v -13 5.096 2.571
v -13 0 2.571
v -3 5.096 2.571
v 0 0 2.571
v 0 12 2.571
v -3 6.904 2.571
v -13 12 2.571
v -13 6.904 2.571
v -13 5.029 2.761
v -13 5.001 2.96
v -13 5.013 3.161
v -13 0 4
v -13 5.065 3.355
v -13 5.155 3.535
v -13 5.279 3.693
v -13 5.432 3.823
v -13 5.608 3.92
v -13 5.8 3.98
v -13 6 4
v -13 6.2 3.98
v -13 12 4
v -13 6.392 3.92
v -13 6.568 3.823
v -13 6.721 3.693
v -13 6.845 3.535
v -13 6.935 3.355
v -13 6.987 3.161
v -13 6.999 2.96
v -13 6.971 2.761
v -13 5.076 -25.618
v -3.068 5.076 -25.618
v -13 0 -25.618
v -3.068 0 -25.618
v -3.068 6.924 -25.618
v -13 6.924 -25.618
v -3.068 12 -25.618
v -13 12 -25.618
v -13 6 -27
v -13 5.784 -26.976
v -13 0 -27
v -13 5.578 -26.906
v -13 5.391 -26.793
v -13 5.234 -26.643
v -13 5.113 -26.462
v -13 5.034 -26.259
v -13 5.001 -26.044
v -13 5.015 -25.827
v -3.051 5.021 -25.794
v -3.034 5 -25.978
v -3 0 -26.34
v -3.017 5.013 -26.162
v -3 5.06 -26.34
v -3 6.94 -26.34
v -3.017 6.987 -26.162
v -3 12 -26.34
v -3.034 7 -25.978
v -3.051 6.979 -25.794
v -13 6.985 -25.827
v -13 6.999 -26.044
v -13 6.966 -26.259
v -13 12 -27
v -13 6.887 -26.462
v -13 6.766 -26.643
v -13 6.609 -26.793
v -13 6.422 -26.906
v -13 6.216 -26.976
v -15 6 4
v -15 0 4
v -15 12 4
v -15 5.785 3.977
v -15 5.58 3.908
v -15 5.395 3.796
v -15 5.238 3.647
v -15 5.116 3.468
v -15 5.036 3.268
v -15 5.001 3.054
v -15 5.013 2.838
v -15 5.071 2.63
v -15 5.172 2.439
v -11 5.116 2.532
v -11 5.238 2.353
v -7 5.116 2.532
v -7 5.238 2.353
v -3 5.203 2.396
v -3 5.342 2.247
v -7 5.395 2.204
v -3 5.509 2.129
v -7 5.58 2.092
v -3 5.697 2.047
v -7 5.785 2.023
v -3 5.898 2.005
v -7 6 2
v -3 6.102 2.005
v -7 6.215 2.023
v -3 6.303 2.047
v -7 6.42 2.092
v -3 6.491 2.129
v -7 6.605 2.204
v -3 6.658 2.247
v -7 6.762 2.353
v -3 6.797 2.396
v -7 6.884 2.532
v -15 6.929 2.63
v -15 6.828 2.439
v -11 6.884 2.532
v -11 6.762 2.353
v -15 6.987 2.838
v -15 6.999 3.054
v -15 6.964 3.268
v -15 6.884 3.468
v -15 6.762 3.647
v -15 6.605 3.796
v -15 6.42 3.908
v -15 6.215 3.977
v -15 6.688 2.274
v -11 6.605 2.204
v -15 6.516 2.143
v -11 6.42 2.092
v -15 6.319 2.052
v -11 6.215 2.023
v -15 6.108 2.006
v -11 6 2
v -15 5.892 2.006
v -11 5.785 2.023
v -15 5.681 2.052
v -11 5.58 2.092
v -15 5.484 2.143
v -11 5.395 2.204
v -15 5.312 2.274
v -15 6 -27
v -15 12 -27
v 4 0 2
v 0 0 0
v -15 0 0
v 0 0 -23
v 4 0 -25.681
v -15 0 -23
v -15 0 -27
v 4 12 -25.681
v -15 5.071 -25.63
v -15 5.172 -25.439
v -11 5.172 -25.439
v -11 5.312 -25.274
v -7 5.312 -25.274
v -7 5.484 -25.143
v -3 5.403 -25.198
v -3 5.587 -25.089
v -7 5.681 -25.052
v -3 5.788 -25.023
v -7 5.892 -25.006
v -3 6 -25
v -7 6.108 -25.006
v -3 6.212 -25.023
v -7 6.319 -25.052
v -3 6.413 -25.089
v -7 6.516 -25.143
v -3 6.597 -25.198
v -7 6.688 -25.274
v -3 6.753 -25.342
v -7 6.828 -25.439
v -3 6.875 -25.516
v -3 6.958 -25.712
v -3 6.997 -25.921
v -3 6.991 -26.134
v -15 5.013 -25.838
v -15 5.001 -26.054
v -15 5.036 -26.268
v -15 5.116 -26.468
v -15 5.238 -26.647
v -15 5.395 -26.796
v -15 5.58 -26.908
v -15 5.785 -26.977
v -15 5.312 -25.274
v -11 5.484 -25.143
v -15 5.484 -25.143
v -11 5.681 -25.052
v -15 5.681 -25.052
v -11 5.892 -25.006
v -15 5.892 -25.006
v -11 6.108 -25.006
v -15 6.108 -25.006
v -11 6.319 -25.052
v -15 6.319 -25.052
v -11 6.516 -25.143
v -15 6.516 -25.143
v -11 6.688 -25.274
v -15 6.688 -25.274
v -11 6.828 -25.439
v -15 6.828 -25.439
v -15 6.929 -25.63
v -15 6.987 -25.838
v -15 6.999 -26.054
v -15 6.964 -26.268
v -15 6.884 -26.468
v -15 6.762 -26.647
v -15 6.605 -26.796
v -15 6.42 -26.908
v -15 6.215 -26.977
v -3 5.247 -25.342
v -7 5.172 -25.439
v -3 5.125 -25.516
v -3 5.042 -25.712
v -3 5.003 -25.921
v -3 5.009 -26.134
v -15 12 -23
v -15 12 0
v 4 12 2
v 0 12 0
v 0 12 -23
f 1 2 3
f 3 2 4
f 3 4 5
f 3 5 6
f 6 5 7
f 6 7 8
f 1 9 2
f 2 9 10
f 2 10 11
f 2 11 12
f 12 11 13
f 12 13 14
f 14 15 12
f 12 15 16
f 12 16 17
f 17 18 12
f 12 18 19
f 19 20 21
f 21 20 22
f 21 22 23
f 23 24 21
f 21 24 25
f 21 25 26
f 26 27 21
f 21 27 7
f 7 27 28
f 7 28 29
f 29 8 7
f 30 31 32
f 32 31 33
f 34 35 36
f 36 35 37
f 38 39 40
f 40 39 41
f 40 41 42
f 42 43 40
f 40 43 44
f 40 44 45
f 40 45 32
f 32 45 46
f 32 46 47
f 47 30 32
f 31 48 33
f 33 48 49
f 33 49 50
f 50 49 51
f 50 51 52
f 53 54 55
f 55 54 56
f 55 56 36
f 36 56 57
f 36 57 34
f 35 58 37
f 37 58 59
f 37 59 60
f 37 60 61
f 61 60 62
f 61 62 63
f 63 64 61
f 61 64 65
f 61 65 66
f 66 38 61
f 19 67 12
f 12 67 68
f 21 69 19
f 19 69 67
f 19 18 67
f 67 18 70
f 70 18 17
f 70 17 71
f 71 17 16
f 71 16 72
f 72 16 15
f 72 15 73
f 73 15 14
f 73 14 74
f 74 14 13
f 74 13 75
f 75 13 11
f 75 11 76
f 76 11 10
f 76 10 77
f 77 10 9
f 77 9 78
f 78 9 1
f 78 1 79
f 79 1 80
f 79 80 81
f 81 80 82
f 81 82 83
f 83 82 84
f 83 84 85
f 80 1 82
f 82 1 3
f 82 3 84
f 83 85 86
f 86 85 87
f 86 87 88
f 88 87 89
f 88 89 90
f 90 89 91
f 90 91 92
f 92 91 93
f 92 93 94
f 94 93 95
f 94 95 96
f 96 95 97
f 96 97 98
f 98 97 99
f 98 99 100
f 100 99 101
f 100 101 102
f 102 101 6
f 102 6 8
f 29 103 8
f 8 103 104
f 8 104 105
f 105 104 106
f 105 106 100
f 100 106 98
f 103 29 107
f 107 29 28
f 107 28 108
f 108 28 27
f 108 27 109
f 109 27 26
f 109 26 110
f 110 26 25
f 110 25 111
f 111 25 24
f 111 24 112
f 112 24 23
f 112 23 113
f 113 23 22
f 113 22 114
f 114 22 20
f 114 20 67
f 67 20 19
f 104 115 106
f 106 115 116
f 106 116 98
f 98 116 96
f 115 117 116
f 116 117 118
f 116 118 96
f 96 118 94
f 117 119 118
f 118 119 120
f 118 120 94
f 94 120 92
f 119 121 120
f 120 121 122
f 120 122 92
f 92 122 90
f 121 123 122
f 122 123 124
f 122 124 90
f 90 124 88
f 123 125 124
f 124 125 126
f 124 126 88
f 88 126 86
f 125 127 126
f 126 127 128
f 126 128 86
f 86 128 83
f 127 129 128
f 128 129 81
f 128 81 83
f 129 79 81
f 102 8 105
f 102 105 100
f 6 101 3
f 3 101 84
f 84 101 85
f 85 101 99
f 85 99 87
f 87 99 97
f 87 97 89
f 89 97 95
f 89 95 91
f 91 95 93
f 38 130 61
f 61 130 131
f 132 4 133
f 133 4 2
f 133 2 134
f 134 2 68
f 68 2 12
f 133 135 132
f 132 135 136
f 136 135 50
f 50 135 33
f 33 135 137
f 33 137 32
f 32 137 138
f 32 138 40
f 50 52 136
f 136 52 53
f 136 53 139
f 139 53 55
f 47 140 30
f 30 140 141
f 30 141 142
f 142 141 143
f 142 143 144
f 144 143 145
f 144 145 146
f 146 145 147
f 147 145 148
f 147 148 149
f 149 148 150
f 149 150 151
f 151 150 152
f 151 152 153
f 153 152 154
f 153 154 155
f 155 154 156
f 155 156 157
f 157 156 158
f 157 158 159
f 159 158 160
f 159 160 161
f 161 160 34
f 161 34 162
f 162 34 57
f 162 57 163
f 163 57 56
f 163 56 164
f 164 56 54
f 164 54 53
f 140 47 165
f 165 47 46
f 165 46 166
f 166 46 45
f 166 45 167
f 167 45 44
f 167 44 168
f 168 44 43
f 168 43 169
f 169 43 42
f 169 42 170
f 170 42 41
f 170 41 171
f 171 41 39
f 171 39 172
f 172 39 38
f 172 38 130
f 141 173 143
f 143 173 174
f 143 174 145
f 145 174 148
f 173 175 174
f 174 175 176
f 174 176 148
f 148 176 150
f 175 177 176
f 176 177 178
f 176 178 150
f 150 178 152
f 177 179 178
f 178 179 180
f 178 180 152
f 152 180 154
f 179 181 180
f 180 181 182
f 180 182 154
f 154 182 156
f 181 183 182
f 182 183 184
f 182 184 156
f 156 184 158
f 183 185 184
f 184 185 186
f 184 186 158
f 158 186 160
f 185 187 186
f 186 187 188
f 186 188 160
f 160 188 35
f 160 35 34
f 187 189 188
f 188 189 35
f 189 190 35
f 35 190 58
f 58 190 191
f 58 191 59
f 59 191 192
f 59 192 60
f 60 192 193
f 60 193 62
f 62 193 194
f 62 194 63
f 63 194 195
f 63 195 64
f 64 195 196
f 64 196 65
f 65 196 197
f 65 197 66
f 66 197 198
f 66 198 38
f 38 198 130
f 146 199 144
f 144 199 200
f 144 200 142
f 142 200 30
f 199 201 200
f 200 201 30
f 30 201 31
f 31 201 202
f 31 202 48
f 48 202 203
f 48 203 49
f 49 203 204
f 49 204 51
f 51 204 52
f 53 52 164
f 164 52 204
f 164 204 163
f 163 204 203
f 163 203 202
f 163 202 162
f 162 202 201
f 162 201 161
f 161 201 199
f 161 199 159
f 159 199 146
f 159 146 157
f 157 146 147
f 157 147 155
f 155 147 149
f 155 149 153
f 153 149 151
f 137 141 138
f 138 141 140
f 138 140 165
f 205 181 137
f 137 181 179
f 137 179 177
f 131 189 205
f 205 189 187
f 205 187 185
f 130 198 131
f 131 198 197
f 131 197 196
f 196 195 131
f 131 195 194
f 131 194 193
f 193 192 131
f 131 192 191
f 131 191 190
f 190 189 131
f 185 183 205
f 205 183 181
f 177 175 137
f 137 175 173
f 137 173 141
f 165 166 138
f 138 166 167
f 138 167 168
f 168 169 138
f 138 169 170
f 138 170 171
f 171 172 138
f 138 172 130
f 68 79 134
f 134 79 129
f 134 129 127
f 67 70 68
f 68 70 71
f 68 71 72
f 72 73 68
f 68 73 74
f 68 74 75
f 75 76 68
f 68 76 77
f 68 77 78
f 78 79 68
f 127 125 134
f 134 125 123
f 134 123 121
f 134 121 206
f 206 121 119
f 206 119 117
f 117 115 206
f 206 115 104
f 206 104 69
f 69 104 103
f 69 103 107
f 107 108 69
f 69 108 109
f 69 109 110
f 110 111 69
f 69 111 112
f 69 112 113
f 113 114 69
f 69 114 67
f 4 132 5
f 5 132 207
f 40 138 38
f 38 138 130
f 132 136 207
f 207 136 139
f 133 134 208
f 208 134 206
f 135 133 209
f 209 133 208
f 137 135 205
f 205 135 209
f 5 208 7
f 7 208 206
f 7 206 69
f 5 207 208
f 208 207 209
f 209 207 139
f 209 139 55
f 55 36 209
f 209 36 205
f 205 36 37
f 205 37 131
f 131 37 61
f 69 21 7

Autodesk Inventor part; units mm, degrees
ref_plane "YZ Plane" through (0, 0, 0) normal (1, 0, 0) x (0, 1, 0)
ref_plane "XZ Plane" through (0, 0, 0) normal (0, 1, 0) x (-1, 0, 0)
ref_plane "XY Plane" through (0, 0, 0) normal (0, 0, 1) x (1, 0, 0)
sketch "Boceto1" plane through (0, 0, 0) normal (0, 1, 0) x (-1, 0, 0)
  line L0 (0, 0) -> (0, -22)
  line L1 (0, -22) -> (0, -23)
  line L2 (0, 0) -> (15, 0)
  line L3 (0, -23) -> (15, -23)
  line L4 (15, -23) -> (15, -27)
  line L5 (15, -27) -> (-4, -27)
  line L6 (-4, -27) -> (-4, 0)
  line L7 (-4, 0) -> (-4, 4)
  line L8 (-4, 4) -> (15, 4)
  line L9 (15, 4) -> (15, 0)
  line L10 (15, 4) -> (10, 4)
  line L11 (10, 4) -> (-4, 2)
  line L12 (15, -27) -> (10, -27)
  line L13 (10, -27) -> (-4, -25.6809)
  dimension "d0" = 22
  dimension "d1" = 1
  dimension "d2" = 15
  dimension "d3" = 15
  dimension "d4" = 4
  dimension "d5" = 19
  dimension "d6" = 4
  dimension "d7" = 5
  dimension "d8" = 5
extrude "Extrusión1" add sketch "Boceto1" along normal blind 12 contours L0 L1 L3 L4 L5 L13 L6 L7 L11 L8 L9 L2
sketch "Boceto2" plane through (-15, 0, 0) normal (-1, 0, 0) x (0, 0, 1)
  line L0 (4, 0) -> (4, 12) projected
  line L1 (4, 6) -> (-27, 6)
  line L2 (-27, 0) -> (-27, 12) projected
  line L3 (4, 6) -> (3, 6)
  circle A0 centre (3, 6) radius 1
  line L4 (-27, 6) -> (-26, 6)
  circle A1 centre (-26, 6) radius 1
  point P0 (0, 0)
  dimension "d11" = 1
  dimension "d12" = 1
extrude "Extrusión2" cut sketch "Boceto2" against normal blind 12
sketch "Boceto3" plane through (0, 12, 0) normal (0, 1, 0) x (1, 0, 0)
  line L0 (-10, -4) -> (4, -2) projected
  line L1 (0, -2.5714) -> (-15, -2.5714)
  line L2 (-15, -2) -> (-3, -2) projected
  line L3 (-15, -2.5714) -> (-13, -2.5714)
  line L4 (-13, -2.5714) -> (-13, -4)
  line L5 (-15, -4) -> (-10, -4) projected
  line L6 (-13, -4) -> (-10.0485, -4)
  line L7 (-10.0485, -4) -> (0, -2.5714)
  line L8 (-10, 27) -> (-15, 27) projected
  line L9 (-15, 27) -> (-13, 27)
  line L10 (-13, 27) -> (-13, 25.6179)
  line L11 (-13, 25.6179) -> (-3.0681, 25.6179)
  line L12 (-10, 27) -> (-3, 26.3405) projected
  line L13 (-3.0681, 25.6179) -> (-3, 26.3405)
  line L14 (-3, 26.3405) -> (-13, 27)
  line L15 (-13, 27) -> (-10, 27)
  line L16 (-10, 27) -> (-3, 26.3405)
  line L17 (4, 25.6809) -> (-10, 27) projected
  point P0 (0, 0)
  dimension "d15" = 2
  dimension "d16" = 2
extrude "Extrusión3" cut sketch "Boceto3" against normal blind 12 contours L7 L5 L4 L1 | L12 L14 L8 | L14 L13 L11 L10
sketch "Boceto4" plane through (0, 12, 0) normal (0, 1, 0) x (1, 0, 0)
  line L0 (-10, -4) -> (0, -2.5714) projected
  line L1 (0, -2.5714) -> (-11.0485, -2.5714)
  line L2 (-15, -2) -> (-3, -2) projected
  line L3 (-11.0485, -2.5714) -> (-10.6007, -6.2769)
  line L4 (0, -2.5714) -> (4, -2) projected
  line L5 (-10.6007, -6.2769) -> (0, -2.5714)
  point P0 (0, 0)
extrude "Extrusión4" cut sketch "Boceto4" against normal blind 12
properties part number "test pinza"
